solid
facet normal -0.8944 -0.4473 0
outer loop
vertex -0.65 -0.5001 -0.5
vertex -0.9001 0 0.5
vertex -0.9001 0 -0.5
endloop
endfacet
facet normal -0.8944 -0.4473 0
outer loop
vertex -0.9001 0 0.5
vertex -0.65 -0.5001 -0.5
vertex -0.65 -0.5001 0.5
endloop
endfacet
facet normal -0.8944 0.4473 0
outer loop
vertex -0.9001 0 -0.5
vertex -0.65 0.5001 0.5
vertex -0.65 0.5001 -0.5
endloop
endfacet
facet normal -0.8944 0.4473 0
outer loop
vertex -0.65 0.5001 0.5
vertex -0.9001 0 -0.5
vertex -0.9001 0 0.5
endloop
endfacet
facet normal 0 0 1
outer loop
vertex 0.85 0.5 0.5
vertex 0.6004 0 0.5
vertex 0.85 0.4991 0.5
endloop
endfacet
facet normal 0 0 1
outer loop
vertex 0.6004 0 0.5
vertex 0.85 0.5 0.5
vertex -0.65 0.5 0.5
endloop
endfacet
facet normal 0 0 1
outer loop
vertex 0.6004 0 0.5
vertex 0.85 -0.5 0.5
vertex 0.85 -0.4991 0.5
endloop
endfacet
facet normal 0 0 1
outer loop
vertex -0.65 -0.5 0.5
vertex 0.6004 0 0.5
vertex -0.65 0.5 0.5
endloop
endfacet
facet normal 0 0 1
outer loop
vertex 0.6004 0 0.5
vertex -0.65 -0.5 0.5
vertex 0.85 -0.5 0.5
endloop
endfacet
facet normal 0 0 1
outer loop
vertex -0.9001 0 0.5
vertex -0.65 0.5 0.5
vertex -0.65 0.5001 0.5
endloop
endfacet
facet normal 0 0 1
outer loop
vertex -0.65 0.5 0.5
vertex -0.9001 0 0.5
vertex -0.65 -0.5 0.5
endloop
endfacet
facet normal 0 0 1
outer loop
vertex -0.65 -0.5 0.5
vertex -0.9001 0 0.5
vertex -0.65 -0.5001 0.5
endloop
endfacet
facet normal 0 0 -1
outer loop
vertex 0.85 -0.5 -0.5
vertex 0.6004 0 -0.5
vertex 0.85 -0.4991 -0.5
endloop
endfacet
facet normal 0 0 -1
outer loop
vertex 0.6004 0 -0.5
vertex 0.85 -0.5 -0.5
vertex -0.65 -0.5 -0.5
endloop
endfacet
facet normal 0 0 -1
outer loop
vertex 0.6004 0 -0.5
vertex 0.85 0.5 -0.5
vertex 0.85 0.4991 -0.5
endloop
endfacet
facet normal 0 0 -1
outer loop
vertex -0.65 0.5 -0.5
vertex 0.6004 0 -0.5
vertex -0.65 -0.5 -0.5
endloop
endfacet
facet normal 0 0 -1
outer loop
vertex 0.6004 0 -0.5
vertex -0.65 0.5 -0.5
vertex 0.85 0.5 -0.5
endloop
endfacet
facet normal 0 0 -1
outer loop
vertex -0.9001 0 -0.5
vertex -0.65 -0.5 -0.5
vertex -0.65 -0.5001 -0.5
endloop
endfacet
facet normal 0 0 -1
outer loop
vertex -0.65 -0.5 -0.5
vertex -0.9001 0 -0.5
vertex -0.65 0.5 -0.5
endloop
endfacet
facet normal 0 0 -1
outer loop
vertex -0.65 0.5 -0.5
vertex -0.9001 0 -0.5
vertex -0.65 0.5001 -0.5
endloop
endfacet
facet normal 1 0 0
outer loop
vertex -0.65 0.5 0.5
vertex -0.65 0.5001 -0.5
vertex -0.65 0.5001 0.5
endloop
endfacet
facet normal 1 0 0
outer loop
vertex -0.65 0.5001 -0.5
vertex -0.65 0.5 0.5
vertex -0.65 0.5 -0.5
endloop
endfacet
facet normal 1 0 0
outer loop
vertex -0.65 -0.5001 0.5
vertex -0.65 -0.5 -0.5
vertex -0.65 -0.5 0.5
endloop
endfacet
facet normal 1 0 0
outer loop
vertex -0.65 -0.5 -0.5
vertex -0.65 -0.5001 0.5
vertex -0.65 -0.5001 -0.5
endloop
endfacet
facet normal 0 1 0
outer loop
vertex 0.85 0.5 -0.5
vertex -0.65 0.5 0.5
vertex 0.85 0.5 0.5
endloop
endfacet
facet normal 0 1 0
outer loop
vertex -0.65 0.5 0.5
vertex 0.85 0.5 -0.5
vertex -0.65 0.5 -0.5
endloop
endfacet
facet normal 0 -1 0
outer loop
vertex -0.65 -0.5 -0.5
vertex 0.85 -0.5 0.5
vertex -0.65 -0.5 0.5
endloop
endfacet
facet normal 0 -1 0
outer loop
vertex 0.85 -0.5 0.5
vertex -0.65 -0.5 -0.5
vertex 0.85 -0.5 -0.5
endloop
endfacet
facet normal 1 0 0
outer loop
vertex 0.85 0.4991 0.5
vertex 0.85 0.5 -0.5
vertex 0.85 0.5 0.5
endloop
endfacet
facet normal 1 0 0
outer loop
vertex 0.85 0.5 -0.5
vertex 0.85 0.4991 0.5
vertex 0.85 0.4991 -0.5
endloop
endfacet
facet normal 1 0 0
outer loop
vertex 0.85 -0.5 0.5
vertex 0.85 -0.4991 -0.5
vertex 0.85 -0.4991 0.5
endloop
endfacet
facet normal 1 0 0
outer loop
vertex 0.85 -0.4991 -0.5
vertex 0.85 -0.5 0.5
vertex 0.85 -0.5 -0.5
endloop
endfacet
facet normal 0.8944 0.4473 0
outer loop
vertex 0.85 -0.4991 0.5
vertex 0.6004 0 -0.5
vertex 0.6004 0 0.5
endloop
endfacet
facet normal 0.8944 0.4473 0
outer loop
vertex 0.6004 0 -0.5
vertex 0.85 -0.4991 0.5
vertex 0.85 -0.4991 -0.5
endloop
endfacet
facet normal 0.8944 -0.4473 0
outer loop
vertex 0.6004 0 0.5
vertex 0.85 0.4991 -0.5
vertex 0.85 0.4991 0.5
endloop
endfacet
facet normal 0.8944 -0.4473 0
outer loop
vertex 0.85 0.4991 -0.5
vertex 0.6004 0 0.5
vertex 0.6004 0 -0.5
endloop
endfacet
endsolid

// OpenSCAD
rotate([90,0,180])scale([0.05,0.1,0.1])translate([-2,0,0])difference(){
    union(){
        cube([30,10,10],true);
        translate([5,0,0])point();
    }
    translate([-25.01,0,0])scale([1,1.1,1])point();
}

module point(){
    difference(){
        translate([7.93,0,0])rotate([0,45,0]){
            cube([10,10,10],true);
        }
        cube([20,20,20],true);
    }
}
